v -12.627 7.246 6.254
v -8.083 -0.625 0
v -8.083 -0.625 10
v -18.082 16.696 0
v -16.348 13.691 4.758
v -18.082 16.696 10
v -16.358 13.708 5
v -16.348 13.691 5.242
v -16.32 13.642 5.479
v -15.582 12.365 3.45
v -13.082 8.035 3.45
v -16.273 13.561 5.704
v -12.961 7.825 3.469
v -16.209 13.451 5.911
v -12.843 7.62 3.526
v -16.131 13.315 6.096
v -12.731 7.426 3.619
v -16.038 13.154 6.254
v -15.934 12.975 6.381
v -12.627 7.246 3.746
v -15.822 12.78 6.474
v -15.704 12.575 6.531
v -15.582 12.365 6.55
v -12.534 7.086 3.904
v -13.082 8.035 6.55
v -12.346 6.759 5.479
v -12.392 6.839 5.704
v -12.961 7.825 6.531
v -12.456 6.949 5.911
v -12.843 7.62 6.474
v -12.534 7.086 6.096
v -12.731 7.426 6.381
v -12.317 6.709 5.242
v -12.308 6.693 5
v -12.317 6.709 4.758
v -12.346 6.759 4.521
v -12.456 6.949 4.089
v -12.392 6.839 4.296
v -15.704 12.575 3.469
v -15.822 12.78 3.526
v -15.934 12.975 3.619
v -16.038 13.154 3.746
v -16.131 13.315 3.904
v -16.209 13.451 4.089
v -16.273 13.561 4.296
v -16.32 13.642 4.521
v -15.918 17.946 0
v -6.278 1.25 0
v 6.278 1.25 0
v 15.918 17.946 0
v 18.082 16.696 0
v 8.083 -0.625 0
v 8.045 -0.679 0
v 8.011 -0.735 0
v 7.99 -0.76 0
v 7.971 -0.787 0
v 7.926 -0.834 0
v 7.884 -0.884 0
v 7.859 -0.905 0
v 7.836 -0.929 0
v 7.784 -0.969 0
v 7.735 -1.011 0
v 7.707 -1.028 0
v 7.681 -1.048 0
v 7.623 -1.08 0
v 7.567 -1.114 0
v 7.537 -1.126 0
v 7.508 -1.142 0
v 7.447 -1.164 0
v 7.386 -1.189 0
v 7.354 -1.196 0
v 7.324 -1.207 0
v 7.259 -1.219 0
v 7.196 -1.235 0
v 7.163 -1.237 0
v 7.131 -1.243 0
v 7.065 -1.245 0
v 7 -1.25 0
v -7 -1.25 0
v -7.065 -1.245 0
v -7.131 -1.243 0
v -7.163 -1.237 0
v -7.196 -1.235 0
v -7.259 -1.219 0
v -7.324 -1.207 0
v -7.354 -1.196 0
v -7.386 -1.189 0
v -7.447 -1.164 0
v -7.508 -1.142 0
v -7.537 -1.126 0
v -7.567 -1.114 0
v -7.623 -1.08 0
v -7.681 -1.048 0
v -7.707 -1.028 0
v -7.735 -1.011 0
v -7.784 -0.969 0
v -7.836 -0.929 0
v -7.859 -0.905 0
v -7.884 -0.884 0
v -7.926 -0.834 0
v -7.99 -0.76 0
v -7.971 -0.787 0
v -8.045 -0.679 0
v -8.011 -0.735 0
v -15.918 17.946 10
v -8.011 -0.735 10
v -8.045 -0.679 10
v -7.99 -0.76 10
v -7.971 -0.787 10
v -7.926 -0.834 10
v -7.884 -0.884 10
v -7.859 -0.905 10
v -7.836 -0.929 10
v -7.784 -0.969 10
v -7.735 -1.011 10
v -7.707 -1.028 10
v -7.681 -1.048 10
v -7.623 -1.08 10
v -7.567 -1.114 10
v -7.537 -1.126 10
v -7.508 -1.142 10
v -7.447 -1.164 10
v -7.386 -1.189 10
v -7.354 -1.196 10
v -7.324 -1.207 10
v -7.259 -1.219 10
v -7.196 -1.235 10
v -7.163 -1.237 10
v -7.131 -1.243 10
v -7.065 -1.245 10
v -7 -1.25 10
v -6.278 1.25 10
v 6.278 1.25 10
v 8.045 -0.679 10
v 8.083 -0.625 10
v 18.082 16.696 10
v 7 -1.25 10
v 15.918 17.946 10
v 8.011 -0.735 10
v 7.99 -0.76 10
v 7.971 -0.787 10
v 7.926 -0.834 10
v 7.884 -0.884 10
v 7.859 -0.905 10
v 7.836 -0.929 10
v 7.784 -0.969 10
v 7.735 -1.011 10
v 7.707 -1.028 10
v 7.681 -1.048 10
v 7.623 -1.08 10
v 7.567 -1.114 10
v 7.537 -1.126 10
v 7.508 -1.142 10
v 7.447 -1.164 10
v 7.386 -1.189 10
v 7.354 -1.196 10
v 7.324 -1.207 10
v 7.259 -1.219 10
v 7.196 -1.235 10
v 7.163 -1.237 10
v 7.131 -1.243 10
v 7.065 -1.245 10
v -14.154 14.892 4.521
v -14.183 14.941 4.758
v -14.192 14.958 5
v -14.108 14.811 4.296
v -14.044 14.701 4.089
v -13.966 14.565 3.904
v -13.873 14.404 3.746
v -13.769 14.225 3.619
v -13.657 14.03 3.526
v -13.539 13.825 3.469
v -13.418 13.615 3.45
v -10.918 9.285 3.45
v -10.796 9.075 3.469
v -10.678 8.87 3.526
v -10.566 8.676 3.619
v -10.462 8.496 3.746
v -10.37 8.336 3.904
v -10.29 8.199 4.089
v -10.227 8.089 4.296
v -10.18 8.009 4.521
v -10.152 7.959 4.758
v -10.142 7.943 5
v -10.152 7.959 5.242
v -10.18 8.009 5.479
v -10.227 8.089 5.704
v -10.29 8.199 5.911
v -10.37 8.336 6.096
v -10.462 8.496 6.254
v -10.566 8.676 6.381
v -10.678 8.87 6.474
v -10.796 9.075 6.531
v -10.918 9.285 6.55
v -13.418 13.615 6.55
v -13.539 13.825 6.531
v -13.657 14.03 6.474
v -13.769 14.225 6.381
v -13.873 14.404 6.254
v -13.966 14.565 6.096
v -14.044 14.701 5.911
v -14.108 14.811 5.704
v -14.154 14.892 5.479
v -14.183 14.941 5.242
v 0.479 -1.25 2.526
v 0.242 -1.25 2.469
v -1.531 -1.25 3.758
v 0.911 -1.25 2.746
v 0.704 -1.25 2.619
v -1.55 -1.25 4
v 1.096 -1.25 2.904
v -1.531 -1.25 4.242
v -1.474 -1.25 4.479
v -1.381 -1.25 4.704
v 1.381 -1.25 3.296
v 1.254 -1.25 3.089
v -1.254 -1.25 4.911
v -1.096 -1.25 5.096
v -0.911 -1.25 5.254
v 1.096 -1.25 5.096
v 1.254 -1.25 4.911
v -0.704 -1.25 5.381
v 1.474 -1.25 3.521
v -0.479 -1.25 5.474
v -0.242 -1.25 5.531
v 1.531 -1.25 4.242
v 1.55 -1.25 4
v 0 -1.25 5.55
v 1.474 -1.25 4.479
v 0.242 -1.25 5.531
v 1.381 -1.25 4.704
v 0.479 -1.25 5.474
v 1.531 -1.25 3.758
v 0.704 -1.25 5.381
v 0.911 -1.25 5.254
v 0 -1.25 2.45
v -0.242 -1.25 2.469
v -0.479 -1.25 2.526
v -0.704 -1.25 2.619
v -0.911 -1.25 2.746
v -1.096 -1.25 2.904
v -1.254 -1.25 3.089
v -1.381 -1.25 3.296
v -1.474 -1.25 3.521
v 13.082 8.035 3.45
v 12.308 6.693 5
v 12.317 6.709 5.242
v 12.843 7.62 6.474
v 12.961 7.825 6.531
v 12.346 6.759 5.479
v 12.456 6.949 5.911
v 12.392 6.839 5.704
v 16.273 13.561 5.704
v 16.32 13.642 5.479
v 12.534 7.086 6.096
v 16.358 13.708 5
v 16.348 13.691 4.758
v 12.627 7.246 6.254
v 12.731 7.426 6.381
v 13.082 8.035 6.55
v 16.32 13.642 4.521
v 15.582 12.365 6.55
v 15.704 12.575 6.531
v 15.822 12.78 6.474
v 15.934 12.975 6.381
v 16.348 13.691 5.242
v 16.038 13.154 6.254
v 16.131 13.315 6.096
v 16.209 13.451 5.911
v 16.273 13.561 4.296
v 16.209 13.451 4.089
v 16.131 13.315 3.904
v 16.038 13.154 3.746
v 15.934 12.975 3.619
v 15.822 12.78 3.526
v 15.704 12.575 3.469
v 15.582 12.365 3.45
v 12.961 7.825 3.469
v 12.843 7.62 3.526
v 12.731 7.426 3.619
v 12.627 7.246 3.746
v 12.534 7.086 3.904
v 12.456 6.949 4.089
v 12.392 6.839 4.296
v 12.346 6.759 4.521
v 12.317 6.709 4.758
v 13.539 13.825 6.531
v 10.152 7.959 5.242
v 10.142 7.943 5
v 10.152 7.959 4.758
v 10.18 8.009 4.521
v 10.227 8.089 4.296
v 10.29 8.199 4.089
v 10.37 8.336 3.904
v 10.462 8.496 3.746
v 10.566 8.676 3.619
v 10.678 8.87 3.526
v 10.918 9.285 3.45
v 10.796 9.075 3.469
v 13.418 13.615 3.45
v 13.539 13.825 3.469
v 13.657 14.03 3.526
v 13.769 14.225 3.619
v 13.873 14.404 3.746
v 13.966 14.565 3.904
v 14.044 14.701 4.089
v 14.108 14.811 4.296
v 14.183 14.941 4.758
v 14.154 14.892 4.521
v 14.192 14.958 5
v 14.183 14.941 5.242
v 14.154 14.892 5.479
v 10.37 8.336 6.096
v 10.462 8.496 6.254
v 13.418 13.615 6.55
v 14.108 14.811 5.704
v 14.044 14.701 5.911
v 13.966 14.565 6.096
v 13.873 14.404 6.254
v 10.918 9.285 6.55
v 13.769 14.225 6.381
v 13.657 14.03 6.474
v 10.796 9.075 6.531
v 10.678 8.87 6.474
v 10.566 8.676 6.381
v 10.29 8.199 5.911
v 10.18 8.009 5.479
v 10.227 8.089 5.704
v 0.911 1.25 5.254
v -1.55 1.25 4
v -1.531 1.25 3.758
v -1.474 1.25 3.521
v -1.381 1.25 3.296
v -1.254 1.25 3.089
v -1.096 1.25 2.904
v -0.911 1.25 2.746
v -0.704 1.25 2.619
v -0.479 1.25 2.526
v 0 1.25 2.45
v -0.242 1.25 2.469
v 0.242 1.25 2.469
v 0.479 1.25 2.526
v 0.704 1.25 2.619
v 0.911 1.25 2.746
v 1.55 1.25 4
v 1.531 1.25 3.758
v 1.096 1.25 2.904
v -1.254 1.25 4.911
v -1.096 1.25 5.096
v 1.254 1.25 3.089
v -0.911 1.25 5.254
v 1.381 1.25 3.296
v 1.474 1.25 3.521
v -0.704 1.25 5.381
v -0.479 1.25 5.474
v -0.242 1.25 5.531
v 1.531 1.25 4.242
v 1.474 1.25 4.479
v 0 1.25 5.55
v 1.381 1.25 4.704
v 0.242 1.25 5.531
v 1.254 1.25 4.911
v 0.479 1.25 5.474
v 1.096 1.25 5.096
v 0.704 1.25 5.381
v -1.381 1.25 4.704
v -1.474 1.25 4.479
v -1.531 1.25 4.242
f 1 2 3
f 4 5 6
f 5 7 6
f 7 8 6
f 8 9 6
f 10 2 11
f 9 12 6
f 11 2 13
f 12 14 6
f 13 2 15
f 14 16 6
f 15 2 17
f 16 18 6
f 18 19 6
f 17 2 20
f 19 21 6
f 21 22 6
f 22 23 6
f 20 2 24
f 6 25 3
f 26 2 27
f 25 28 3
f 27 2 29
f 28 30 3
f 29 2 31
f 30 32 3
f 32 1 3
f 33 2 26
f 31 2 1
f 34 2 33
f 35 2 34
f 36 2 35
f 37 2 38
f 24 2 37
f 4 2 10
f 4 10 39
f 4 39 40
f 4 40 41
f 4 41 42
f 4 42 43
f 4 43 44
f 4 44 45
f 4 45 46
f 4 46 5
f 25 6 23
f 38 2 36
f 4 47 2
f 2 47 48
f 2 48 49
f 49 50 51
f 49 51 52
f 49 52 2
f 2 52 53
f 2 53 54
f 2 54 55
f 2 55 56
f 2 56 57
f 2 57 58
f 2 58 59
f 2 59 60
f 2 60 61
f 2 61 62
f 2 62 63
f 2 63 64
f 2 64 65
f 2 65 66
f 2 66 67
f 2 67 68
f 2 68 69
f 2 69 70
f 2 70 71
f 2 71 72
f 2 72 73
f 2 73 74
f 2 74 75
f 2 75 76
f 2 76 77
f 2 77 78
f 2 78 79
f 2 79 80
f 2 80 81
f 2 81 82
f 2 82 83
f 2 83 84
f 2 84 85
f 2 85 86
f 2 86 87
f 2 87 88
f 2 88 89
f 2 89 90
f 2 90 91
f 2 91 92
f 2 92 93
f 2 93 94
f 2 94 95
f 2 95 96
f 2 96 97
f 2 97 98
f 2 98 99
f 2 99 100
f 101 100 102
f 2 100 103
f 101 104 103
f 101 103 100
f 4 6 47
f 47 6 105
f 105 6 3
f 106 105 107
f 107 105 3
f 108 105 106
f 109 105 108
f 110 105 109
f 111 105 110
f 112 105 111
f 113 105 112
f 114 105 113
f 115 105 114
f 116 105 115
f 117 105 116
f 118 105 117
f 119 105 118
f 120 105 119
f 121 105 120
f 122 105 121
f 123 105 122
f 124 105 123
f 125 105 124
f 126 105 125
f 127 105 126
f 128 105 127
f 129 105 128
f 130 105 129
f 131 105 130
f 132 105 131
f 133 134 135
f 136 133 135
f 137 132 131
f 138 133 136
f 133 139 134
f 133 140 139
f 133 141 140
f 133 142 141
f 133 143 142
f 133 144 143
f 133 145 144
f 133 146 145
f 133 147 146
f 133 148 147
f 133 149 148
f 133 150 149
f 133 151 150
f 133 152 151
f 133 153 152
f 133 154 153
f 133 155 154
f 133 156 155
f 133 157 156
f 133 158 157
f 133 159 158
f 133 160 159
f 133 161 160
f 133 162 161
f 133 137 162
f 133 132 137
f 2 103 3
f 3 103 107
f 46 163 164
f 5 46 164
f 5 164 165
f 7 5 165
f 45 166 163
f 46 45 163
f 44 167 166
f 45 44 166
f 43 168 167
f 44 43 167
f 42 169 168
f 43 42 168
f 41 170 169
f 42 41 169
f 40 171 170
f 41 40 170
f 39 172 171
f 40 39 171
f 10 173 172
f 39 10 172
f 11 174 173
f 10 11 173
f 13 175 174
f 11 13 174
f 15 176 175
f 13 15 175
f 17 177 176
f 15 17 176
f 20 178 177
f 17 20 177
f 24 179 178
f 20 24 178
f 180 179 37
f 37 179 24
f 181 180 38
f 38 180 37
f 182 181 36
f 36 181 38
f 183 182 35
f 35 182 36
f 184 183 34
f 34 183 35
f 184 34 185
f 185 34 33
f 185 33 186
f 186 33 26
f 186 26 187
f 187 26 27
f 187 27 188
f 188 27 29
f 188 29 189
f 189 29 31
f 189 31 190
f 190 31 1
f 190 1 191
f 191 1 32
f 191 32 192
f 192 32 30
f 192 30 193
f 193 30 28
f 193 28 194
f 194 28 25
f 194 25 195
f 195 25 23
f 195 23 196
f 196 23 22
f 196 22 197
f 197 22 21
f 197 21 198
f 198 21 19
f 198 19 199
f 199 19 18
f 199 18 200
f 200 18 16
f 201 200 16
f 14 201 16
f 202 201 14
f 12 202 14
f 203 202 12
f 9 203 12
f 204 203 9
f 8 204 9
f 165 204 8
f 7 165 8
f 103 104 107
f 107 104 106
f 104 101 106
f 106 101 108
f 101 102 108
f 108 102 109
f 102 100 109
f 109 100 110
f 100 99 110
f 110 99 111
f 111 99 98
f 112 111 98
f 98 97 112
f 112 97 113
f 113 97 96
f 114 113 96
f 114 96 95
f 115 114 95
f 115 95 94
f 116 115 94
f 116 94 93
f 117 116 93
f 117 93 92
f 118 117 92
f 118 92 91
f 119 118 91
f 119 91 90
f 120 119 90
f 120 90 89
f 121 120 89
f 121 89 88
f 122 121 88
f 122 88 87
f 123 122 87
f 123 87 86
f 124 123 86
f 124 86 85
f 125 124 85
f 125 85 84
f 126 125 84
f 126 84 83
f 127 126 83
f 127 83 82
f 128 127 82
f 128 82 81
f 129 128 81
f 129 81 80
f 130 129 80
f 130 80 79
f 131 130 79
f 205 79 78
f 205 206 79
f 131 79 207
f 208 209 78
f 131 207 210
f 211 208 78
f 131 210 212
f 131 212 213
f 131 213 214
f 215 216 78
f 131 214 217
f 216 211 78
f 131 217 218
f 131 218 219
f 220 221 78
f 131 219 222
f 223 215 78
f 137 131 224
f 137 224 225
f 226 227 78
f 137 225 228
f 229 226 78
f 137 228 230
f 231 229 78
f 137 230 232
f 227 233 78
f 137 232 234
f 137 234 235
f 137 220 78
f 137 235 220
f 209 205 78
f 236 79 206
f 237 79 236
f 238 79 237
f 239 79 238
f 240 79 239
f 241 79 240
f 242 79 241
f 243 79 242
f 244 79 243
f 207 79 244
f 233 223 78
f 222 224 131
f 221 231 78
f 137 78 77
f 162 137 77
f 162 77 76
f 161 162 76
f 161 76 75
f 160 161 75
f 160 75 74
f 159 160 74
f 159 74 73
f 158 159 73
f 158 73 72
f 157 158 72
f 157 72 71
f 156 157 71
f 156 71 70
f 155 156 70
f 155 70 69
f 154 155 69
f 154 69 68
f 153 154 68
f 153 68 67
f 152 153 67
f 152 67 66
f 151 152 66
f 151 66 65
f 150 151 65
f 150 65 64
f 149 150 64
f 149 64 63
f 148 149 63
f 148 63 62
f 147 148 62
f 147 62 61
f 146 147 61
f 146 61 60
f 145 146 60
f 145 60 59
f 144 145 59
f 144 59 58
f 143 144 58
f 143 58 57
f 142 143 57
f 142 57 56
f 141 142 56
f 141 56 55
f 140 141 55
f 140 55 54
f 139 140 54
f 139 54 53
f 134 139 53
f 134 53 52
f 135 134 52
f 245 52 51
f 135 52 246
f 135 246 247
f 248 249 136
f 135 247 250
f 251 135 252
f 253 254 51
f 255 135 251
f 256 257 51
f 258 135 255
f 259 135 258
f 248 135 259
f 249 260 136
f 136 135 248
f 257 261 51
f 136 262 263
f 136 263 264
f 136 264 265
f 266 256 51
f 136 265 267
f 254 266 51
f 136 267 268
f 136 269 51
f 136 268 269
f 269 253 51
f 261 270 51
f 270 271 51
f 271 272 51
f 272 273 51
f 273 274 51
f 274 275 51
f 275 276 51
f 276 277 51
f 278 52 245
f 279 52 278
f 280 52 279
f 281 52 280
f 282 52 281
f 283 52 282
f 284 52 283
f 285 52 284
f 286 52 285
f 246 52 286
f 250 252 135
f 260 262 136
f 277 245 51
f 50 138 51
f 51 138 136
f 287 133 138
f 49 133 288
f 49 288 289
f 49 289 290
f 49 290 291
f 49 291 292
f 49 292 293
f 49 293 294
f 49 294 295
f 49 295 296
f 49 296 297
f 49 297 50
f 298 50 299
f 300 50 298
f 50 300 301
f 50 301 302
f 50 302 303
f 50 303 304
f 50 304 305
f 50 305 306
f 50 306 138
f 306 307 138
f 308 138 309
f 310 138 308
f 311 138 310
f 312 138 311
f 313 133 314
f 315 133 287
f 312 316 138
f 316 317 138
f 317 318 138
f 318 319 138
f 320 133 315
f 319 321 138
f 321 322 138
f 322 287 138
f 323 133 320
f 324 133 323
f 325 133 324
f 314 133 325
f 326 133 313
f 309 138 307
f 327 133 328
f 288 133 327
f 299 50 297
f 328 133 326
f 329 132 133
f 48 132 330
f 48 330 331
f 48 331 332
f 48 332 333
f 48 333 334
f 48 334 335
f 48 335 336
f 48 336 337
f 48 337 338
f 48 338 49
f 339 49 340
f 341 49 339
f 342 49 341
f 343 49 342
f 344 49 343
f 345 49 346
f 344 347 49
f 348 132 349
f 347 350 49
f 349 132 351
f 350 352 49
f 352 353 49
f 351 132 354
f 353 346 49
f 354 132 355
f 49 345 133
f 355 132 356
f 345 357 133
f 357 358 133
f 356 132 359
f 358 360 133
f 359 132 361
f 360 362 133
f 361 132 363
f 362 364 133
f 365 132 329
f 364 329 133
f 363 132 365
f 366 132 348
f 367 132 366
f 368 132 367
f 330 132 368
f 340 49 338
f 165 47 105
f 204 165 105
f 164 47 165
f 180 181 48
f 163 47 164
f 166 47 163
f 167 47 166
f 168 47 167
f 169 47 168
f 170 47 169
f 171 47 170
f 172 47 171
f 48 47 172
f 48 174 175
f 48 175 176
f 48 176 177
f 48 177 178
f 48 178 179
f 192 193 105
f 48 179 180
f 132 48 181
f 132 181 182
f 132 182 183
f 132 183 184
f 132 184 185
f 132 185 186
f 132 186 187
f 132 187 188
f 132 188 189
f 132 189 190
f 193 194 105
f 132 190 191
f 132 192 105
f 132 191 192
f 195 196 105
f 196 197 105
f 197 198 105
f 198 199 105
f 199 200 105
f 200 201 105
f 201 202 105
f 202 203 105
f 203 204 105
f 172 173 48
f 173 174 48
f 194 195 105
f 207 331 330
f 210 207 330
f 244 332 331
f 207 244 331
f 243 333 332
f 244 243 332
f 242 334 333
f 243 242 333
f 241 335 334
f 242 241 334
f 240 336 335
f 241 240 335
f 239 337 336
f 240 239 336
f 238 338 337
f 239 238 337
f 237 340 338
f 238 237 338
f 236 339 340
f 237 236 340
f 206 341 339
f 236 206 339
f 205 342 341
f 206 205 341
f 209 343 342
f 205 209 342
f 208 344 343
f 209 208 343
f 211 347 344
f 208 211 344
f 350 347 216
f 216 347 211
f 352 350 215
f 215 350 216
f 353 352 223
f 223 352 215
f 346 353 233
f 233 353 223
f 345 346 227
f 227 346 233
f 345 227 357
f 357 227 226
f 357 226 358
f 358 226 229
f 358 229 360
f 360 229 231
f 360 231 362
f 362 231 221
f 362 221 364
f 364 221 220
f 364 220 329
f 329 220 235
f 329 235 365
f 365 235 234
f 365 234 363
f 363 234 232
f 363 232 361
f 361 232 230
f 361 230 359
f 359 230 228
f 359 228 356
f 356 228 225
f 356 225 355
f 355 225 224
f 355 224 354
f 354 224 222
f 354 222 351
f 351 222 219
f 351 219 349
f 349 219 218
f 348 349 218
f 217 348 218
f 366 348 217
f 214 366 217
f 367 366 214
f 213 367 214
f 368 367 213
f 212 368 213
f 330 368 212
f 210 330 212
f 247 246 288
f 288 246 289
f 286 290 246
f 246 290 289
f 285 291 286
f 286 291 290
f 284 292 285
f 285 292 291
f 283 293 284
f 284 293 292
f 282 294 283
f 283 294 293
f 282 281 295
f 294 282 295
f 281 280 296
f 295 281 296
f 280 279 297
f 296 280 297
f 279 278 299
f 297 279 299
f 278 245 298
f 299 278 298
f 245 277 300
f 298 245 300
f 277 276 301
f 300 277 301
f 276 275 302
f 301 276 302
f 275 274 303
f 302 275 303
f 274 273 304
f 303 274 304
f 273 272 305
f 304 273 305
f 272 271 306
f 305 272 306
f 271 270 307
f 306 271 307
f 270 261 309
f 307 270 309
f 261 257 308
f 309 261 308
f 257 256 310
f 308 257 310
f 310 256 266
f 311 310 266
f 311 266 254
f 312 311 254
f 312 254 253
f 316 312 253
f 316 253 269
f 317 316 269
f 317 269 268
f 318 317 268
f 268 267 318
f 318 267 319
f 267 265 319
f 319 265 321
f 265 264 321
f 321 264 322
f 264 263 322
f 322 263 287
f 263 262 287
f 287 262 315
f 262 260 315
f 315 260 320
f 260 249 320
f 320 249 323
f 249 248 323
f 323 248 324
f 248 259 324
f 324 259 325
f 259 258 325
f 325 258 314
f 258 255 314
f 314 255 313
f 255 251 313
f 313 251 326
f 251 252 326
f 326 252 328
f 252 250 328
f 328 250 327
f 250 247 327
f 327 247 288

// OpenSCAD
$fn = 40;



difference() {
	union() {
		translate([-7,0,0])
		rotate(a=[0,0,30])
		holderWing();

		translate([7,0,0])
		rotate(a=[0,0,-30])
		holderWing();	

		hull() {
			translate([7,0,0]) cylinder(h = 10, r=2.5/2);
			translate([-7,0,0]) cylinder(h = 10, r=2.5/2);
		}
	}	

	translate([0,3,4]) 
	rotate(a=[90,0,0])
	cylinder(h = 10, r=3.1/2);
	
}





module holderWing() {
	union() {
		translate([0,0,0]) cylinder(h = 10, r=2.5/2);
		translate([-2.5/2,0,0])
		difference() {
			cube(size=[2.5,20,10]);

			translate([-1,10,5]) 
			rotate(a=[90,0,90]) 
			slit(5,1.55);	
		}	
	}	
}







module slit(length,radius) {
	hull() {
		translate([length,0,0]) cylinder(h = 6, r=radius);
		translate([0,0,0]) cylinder(h = 6, r=radius);
	}
}


	
